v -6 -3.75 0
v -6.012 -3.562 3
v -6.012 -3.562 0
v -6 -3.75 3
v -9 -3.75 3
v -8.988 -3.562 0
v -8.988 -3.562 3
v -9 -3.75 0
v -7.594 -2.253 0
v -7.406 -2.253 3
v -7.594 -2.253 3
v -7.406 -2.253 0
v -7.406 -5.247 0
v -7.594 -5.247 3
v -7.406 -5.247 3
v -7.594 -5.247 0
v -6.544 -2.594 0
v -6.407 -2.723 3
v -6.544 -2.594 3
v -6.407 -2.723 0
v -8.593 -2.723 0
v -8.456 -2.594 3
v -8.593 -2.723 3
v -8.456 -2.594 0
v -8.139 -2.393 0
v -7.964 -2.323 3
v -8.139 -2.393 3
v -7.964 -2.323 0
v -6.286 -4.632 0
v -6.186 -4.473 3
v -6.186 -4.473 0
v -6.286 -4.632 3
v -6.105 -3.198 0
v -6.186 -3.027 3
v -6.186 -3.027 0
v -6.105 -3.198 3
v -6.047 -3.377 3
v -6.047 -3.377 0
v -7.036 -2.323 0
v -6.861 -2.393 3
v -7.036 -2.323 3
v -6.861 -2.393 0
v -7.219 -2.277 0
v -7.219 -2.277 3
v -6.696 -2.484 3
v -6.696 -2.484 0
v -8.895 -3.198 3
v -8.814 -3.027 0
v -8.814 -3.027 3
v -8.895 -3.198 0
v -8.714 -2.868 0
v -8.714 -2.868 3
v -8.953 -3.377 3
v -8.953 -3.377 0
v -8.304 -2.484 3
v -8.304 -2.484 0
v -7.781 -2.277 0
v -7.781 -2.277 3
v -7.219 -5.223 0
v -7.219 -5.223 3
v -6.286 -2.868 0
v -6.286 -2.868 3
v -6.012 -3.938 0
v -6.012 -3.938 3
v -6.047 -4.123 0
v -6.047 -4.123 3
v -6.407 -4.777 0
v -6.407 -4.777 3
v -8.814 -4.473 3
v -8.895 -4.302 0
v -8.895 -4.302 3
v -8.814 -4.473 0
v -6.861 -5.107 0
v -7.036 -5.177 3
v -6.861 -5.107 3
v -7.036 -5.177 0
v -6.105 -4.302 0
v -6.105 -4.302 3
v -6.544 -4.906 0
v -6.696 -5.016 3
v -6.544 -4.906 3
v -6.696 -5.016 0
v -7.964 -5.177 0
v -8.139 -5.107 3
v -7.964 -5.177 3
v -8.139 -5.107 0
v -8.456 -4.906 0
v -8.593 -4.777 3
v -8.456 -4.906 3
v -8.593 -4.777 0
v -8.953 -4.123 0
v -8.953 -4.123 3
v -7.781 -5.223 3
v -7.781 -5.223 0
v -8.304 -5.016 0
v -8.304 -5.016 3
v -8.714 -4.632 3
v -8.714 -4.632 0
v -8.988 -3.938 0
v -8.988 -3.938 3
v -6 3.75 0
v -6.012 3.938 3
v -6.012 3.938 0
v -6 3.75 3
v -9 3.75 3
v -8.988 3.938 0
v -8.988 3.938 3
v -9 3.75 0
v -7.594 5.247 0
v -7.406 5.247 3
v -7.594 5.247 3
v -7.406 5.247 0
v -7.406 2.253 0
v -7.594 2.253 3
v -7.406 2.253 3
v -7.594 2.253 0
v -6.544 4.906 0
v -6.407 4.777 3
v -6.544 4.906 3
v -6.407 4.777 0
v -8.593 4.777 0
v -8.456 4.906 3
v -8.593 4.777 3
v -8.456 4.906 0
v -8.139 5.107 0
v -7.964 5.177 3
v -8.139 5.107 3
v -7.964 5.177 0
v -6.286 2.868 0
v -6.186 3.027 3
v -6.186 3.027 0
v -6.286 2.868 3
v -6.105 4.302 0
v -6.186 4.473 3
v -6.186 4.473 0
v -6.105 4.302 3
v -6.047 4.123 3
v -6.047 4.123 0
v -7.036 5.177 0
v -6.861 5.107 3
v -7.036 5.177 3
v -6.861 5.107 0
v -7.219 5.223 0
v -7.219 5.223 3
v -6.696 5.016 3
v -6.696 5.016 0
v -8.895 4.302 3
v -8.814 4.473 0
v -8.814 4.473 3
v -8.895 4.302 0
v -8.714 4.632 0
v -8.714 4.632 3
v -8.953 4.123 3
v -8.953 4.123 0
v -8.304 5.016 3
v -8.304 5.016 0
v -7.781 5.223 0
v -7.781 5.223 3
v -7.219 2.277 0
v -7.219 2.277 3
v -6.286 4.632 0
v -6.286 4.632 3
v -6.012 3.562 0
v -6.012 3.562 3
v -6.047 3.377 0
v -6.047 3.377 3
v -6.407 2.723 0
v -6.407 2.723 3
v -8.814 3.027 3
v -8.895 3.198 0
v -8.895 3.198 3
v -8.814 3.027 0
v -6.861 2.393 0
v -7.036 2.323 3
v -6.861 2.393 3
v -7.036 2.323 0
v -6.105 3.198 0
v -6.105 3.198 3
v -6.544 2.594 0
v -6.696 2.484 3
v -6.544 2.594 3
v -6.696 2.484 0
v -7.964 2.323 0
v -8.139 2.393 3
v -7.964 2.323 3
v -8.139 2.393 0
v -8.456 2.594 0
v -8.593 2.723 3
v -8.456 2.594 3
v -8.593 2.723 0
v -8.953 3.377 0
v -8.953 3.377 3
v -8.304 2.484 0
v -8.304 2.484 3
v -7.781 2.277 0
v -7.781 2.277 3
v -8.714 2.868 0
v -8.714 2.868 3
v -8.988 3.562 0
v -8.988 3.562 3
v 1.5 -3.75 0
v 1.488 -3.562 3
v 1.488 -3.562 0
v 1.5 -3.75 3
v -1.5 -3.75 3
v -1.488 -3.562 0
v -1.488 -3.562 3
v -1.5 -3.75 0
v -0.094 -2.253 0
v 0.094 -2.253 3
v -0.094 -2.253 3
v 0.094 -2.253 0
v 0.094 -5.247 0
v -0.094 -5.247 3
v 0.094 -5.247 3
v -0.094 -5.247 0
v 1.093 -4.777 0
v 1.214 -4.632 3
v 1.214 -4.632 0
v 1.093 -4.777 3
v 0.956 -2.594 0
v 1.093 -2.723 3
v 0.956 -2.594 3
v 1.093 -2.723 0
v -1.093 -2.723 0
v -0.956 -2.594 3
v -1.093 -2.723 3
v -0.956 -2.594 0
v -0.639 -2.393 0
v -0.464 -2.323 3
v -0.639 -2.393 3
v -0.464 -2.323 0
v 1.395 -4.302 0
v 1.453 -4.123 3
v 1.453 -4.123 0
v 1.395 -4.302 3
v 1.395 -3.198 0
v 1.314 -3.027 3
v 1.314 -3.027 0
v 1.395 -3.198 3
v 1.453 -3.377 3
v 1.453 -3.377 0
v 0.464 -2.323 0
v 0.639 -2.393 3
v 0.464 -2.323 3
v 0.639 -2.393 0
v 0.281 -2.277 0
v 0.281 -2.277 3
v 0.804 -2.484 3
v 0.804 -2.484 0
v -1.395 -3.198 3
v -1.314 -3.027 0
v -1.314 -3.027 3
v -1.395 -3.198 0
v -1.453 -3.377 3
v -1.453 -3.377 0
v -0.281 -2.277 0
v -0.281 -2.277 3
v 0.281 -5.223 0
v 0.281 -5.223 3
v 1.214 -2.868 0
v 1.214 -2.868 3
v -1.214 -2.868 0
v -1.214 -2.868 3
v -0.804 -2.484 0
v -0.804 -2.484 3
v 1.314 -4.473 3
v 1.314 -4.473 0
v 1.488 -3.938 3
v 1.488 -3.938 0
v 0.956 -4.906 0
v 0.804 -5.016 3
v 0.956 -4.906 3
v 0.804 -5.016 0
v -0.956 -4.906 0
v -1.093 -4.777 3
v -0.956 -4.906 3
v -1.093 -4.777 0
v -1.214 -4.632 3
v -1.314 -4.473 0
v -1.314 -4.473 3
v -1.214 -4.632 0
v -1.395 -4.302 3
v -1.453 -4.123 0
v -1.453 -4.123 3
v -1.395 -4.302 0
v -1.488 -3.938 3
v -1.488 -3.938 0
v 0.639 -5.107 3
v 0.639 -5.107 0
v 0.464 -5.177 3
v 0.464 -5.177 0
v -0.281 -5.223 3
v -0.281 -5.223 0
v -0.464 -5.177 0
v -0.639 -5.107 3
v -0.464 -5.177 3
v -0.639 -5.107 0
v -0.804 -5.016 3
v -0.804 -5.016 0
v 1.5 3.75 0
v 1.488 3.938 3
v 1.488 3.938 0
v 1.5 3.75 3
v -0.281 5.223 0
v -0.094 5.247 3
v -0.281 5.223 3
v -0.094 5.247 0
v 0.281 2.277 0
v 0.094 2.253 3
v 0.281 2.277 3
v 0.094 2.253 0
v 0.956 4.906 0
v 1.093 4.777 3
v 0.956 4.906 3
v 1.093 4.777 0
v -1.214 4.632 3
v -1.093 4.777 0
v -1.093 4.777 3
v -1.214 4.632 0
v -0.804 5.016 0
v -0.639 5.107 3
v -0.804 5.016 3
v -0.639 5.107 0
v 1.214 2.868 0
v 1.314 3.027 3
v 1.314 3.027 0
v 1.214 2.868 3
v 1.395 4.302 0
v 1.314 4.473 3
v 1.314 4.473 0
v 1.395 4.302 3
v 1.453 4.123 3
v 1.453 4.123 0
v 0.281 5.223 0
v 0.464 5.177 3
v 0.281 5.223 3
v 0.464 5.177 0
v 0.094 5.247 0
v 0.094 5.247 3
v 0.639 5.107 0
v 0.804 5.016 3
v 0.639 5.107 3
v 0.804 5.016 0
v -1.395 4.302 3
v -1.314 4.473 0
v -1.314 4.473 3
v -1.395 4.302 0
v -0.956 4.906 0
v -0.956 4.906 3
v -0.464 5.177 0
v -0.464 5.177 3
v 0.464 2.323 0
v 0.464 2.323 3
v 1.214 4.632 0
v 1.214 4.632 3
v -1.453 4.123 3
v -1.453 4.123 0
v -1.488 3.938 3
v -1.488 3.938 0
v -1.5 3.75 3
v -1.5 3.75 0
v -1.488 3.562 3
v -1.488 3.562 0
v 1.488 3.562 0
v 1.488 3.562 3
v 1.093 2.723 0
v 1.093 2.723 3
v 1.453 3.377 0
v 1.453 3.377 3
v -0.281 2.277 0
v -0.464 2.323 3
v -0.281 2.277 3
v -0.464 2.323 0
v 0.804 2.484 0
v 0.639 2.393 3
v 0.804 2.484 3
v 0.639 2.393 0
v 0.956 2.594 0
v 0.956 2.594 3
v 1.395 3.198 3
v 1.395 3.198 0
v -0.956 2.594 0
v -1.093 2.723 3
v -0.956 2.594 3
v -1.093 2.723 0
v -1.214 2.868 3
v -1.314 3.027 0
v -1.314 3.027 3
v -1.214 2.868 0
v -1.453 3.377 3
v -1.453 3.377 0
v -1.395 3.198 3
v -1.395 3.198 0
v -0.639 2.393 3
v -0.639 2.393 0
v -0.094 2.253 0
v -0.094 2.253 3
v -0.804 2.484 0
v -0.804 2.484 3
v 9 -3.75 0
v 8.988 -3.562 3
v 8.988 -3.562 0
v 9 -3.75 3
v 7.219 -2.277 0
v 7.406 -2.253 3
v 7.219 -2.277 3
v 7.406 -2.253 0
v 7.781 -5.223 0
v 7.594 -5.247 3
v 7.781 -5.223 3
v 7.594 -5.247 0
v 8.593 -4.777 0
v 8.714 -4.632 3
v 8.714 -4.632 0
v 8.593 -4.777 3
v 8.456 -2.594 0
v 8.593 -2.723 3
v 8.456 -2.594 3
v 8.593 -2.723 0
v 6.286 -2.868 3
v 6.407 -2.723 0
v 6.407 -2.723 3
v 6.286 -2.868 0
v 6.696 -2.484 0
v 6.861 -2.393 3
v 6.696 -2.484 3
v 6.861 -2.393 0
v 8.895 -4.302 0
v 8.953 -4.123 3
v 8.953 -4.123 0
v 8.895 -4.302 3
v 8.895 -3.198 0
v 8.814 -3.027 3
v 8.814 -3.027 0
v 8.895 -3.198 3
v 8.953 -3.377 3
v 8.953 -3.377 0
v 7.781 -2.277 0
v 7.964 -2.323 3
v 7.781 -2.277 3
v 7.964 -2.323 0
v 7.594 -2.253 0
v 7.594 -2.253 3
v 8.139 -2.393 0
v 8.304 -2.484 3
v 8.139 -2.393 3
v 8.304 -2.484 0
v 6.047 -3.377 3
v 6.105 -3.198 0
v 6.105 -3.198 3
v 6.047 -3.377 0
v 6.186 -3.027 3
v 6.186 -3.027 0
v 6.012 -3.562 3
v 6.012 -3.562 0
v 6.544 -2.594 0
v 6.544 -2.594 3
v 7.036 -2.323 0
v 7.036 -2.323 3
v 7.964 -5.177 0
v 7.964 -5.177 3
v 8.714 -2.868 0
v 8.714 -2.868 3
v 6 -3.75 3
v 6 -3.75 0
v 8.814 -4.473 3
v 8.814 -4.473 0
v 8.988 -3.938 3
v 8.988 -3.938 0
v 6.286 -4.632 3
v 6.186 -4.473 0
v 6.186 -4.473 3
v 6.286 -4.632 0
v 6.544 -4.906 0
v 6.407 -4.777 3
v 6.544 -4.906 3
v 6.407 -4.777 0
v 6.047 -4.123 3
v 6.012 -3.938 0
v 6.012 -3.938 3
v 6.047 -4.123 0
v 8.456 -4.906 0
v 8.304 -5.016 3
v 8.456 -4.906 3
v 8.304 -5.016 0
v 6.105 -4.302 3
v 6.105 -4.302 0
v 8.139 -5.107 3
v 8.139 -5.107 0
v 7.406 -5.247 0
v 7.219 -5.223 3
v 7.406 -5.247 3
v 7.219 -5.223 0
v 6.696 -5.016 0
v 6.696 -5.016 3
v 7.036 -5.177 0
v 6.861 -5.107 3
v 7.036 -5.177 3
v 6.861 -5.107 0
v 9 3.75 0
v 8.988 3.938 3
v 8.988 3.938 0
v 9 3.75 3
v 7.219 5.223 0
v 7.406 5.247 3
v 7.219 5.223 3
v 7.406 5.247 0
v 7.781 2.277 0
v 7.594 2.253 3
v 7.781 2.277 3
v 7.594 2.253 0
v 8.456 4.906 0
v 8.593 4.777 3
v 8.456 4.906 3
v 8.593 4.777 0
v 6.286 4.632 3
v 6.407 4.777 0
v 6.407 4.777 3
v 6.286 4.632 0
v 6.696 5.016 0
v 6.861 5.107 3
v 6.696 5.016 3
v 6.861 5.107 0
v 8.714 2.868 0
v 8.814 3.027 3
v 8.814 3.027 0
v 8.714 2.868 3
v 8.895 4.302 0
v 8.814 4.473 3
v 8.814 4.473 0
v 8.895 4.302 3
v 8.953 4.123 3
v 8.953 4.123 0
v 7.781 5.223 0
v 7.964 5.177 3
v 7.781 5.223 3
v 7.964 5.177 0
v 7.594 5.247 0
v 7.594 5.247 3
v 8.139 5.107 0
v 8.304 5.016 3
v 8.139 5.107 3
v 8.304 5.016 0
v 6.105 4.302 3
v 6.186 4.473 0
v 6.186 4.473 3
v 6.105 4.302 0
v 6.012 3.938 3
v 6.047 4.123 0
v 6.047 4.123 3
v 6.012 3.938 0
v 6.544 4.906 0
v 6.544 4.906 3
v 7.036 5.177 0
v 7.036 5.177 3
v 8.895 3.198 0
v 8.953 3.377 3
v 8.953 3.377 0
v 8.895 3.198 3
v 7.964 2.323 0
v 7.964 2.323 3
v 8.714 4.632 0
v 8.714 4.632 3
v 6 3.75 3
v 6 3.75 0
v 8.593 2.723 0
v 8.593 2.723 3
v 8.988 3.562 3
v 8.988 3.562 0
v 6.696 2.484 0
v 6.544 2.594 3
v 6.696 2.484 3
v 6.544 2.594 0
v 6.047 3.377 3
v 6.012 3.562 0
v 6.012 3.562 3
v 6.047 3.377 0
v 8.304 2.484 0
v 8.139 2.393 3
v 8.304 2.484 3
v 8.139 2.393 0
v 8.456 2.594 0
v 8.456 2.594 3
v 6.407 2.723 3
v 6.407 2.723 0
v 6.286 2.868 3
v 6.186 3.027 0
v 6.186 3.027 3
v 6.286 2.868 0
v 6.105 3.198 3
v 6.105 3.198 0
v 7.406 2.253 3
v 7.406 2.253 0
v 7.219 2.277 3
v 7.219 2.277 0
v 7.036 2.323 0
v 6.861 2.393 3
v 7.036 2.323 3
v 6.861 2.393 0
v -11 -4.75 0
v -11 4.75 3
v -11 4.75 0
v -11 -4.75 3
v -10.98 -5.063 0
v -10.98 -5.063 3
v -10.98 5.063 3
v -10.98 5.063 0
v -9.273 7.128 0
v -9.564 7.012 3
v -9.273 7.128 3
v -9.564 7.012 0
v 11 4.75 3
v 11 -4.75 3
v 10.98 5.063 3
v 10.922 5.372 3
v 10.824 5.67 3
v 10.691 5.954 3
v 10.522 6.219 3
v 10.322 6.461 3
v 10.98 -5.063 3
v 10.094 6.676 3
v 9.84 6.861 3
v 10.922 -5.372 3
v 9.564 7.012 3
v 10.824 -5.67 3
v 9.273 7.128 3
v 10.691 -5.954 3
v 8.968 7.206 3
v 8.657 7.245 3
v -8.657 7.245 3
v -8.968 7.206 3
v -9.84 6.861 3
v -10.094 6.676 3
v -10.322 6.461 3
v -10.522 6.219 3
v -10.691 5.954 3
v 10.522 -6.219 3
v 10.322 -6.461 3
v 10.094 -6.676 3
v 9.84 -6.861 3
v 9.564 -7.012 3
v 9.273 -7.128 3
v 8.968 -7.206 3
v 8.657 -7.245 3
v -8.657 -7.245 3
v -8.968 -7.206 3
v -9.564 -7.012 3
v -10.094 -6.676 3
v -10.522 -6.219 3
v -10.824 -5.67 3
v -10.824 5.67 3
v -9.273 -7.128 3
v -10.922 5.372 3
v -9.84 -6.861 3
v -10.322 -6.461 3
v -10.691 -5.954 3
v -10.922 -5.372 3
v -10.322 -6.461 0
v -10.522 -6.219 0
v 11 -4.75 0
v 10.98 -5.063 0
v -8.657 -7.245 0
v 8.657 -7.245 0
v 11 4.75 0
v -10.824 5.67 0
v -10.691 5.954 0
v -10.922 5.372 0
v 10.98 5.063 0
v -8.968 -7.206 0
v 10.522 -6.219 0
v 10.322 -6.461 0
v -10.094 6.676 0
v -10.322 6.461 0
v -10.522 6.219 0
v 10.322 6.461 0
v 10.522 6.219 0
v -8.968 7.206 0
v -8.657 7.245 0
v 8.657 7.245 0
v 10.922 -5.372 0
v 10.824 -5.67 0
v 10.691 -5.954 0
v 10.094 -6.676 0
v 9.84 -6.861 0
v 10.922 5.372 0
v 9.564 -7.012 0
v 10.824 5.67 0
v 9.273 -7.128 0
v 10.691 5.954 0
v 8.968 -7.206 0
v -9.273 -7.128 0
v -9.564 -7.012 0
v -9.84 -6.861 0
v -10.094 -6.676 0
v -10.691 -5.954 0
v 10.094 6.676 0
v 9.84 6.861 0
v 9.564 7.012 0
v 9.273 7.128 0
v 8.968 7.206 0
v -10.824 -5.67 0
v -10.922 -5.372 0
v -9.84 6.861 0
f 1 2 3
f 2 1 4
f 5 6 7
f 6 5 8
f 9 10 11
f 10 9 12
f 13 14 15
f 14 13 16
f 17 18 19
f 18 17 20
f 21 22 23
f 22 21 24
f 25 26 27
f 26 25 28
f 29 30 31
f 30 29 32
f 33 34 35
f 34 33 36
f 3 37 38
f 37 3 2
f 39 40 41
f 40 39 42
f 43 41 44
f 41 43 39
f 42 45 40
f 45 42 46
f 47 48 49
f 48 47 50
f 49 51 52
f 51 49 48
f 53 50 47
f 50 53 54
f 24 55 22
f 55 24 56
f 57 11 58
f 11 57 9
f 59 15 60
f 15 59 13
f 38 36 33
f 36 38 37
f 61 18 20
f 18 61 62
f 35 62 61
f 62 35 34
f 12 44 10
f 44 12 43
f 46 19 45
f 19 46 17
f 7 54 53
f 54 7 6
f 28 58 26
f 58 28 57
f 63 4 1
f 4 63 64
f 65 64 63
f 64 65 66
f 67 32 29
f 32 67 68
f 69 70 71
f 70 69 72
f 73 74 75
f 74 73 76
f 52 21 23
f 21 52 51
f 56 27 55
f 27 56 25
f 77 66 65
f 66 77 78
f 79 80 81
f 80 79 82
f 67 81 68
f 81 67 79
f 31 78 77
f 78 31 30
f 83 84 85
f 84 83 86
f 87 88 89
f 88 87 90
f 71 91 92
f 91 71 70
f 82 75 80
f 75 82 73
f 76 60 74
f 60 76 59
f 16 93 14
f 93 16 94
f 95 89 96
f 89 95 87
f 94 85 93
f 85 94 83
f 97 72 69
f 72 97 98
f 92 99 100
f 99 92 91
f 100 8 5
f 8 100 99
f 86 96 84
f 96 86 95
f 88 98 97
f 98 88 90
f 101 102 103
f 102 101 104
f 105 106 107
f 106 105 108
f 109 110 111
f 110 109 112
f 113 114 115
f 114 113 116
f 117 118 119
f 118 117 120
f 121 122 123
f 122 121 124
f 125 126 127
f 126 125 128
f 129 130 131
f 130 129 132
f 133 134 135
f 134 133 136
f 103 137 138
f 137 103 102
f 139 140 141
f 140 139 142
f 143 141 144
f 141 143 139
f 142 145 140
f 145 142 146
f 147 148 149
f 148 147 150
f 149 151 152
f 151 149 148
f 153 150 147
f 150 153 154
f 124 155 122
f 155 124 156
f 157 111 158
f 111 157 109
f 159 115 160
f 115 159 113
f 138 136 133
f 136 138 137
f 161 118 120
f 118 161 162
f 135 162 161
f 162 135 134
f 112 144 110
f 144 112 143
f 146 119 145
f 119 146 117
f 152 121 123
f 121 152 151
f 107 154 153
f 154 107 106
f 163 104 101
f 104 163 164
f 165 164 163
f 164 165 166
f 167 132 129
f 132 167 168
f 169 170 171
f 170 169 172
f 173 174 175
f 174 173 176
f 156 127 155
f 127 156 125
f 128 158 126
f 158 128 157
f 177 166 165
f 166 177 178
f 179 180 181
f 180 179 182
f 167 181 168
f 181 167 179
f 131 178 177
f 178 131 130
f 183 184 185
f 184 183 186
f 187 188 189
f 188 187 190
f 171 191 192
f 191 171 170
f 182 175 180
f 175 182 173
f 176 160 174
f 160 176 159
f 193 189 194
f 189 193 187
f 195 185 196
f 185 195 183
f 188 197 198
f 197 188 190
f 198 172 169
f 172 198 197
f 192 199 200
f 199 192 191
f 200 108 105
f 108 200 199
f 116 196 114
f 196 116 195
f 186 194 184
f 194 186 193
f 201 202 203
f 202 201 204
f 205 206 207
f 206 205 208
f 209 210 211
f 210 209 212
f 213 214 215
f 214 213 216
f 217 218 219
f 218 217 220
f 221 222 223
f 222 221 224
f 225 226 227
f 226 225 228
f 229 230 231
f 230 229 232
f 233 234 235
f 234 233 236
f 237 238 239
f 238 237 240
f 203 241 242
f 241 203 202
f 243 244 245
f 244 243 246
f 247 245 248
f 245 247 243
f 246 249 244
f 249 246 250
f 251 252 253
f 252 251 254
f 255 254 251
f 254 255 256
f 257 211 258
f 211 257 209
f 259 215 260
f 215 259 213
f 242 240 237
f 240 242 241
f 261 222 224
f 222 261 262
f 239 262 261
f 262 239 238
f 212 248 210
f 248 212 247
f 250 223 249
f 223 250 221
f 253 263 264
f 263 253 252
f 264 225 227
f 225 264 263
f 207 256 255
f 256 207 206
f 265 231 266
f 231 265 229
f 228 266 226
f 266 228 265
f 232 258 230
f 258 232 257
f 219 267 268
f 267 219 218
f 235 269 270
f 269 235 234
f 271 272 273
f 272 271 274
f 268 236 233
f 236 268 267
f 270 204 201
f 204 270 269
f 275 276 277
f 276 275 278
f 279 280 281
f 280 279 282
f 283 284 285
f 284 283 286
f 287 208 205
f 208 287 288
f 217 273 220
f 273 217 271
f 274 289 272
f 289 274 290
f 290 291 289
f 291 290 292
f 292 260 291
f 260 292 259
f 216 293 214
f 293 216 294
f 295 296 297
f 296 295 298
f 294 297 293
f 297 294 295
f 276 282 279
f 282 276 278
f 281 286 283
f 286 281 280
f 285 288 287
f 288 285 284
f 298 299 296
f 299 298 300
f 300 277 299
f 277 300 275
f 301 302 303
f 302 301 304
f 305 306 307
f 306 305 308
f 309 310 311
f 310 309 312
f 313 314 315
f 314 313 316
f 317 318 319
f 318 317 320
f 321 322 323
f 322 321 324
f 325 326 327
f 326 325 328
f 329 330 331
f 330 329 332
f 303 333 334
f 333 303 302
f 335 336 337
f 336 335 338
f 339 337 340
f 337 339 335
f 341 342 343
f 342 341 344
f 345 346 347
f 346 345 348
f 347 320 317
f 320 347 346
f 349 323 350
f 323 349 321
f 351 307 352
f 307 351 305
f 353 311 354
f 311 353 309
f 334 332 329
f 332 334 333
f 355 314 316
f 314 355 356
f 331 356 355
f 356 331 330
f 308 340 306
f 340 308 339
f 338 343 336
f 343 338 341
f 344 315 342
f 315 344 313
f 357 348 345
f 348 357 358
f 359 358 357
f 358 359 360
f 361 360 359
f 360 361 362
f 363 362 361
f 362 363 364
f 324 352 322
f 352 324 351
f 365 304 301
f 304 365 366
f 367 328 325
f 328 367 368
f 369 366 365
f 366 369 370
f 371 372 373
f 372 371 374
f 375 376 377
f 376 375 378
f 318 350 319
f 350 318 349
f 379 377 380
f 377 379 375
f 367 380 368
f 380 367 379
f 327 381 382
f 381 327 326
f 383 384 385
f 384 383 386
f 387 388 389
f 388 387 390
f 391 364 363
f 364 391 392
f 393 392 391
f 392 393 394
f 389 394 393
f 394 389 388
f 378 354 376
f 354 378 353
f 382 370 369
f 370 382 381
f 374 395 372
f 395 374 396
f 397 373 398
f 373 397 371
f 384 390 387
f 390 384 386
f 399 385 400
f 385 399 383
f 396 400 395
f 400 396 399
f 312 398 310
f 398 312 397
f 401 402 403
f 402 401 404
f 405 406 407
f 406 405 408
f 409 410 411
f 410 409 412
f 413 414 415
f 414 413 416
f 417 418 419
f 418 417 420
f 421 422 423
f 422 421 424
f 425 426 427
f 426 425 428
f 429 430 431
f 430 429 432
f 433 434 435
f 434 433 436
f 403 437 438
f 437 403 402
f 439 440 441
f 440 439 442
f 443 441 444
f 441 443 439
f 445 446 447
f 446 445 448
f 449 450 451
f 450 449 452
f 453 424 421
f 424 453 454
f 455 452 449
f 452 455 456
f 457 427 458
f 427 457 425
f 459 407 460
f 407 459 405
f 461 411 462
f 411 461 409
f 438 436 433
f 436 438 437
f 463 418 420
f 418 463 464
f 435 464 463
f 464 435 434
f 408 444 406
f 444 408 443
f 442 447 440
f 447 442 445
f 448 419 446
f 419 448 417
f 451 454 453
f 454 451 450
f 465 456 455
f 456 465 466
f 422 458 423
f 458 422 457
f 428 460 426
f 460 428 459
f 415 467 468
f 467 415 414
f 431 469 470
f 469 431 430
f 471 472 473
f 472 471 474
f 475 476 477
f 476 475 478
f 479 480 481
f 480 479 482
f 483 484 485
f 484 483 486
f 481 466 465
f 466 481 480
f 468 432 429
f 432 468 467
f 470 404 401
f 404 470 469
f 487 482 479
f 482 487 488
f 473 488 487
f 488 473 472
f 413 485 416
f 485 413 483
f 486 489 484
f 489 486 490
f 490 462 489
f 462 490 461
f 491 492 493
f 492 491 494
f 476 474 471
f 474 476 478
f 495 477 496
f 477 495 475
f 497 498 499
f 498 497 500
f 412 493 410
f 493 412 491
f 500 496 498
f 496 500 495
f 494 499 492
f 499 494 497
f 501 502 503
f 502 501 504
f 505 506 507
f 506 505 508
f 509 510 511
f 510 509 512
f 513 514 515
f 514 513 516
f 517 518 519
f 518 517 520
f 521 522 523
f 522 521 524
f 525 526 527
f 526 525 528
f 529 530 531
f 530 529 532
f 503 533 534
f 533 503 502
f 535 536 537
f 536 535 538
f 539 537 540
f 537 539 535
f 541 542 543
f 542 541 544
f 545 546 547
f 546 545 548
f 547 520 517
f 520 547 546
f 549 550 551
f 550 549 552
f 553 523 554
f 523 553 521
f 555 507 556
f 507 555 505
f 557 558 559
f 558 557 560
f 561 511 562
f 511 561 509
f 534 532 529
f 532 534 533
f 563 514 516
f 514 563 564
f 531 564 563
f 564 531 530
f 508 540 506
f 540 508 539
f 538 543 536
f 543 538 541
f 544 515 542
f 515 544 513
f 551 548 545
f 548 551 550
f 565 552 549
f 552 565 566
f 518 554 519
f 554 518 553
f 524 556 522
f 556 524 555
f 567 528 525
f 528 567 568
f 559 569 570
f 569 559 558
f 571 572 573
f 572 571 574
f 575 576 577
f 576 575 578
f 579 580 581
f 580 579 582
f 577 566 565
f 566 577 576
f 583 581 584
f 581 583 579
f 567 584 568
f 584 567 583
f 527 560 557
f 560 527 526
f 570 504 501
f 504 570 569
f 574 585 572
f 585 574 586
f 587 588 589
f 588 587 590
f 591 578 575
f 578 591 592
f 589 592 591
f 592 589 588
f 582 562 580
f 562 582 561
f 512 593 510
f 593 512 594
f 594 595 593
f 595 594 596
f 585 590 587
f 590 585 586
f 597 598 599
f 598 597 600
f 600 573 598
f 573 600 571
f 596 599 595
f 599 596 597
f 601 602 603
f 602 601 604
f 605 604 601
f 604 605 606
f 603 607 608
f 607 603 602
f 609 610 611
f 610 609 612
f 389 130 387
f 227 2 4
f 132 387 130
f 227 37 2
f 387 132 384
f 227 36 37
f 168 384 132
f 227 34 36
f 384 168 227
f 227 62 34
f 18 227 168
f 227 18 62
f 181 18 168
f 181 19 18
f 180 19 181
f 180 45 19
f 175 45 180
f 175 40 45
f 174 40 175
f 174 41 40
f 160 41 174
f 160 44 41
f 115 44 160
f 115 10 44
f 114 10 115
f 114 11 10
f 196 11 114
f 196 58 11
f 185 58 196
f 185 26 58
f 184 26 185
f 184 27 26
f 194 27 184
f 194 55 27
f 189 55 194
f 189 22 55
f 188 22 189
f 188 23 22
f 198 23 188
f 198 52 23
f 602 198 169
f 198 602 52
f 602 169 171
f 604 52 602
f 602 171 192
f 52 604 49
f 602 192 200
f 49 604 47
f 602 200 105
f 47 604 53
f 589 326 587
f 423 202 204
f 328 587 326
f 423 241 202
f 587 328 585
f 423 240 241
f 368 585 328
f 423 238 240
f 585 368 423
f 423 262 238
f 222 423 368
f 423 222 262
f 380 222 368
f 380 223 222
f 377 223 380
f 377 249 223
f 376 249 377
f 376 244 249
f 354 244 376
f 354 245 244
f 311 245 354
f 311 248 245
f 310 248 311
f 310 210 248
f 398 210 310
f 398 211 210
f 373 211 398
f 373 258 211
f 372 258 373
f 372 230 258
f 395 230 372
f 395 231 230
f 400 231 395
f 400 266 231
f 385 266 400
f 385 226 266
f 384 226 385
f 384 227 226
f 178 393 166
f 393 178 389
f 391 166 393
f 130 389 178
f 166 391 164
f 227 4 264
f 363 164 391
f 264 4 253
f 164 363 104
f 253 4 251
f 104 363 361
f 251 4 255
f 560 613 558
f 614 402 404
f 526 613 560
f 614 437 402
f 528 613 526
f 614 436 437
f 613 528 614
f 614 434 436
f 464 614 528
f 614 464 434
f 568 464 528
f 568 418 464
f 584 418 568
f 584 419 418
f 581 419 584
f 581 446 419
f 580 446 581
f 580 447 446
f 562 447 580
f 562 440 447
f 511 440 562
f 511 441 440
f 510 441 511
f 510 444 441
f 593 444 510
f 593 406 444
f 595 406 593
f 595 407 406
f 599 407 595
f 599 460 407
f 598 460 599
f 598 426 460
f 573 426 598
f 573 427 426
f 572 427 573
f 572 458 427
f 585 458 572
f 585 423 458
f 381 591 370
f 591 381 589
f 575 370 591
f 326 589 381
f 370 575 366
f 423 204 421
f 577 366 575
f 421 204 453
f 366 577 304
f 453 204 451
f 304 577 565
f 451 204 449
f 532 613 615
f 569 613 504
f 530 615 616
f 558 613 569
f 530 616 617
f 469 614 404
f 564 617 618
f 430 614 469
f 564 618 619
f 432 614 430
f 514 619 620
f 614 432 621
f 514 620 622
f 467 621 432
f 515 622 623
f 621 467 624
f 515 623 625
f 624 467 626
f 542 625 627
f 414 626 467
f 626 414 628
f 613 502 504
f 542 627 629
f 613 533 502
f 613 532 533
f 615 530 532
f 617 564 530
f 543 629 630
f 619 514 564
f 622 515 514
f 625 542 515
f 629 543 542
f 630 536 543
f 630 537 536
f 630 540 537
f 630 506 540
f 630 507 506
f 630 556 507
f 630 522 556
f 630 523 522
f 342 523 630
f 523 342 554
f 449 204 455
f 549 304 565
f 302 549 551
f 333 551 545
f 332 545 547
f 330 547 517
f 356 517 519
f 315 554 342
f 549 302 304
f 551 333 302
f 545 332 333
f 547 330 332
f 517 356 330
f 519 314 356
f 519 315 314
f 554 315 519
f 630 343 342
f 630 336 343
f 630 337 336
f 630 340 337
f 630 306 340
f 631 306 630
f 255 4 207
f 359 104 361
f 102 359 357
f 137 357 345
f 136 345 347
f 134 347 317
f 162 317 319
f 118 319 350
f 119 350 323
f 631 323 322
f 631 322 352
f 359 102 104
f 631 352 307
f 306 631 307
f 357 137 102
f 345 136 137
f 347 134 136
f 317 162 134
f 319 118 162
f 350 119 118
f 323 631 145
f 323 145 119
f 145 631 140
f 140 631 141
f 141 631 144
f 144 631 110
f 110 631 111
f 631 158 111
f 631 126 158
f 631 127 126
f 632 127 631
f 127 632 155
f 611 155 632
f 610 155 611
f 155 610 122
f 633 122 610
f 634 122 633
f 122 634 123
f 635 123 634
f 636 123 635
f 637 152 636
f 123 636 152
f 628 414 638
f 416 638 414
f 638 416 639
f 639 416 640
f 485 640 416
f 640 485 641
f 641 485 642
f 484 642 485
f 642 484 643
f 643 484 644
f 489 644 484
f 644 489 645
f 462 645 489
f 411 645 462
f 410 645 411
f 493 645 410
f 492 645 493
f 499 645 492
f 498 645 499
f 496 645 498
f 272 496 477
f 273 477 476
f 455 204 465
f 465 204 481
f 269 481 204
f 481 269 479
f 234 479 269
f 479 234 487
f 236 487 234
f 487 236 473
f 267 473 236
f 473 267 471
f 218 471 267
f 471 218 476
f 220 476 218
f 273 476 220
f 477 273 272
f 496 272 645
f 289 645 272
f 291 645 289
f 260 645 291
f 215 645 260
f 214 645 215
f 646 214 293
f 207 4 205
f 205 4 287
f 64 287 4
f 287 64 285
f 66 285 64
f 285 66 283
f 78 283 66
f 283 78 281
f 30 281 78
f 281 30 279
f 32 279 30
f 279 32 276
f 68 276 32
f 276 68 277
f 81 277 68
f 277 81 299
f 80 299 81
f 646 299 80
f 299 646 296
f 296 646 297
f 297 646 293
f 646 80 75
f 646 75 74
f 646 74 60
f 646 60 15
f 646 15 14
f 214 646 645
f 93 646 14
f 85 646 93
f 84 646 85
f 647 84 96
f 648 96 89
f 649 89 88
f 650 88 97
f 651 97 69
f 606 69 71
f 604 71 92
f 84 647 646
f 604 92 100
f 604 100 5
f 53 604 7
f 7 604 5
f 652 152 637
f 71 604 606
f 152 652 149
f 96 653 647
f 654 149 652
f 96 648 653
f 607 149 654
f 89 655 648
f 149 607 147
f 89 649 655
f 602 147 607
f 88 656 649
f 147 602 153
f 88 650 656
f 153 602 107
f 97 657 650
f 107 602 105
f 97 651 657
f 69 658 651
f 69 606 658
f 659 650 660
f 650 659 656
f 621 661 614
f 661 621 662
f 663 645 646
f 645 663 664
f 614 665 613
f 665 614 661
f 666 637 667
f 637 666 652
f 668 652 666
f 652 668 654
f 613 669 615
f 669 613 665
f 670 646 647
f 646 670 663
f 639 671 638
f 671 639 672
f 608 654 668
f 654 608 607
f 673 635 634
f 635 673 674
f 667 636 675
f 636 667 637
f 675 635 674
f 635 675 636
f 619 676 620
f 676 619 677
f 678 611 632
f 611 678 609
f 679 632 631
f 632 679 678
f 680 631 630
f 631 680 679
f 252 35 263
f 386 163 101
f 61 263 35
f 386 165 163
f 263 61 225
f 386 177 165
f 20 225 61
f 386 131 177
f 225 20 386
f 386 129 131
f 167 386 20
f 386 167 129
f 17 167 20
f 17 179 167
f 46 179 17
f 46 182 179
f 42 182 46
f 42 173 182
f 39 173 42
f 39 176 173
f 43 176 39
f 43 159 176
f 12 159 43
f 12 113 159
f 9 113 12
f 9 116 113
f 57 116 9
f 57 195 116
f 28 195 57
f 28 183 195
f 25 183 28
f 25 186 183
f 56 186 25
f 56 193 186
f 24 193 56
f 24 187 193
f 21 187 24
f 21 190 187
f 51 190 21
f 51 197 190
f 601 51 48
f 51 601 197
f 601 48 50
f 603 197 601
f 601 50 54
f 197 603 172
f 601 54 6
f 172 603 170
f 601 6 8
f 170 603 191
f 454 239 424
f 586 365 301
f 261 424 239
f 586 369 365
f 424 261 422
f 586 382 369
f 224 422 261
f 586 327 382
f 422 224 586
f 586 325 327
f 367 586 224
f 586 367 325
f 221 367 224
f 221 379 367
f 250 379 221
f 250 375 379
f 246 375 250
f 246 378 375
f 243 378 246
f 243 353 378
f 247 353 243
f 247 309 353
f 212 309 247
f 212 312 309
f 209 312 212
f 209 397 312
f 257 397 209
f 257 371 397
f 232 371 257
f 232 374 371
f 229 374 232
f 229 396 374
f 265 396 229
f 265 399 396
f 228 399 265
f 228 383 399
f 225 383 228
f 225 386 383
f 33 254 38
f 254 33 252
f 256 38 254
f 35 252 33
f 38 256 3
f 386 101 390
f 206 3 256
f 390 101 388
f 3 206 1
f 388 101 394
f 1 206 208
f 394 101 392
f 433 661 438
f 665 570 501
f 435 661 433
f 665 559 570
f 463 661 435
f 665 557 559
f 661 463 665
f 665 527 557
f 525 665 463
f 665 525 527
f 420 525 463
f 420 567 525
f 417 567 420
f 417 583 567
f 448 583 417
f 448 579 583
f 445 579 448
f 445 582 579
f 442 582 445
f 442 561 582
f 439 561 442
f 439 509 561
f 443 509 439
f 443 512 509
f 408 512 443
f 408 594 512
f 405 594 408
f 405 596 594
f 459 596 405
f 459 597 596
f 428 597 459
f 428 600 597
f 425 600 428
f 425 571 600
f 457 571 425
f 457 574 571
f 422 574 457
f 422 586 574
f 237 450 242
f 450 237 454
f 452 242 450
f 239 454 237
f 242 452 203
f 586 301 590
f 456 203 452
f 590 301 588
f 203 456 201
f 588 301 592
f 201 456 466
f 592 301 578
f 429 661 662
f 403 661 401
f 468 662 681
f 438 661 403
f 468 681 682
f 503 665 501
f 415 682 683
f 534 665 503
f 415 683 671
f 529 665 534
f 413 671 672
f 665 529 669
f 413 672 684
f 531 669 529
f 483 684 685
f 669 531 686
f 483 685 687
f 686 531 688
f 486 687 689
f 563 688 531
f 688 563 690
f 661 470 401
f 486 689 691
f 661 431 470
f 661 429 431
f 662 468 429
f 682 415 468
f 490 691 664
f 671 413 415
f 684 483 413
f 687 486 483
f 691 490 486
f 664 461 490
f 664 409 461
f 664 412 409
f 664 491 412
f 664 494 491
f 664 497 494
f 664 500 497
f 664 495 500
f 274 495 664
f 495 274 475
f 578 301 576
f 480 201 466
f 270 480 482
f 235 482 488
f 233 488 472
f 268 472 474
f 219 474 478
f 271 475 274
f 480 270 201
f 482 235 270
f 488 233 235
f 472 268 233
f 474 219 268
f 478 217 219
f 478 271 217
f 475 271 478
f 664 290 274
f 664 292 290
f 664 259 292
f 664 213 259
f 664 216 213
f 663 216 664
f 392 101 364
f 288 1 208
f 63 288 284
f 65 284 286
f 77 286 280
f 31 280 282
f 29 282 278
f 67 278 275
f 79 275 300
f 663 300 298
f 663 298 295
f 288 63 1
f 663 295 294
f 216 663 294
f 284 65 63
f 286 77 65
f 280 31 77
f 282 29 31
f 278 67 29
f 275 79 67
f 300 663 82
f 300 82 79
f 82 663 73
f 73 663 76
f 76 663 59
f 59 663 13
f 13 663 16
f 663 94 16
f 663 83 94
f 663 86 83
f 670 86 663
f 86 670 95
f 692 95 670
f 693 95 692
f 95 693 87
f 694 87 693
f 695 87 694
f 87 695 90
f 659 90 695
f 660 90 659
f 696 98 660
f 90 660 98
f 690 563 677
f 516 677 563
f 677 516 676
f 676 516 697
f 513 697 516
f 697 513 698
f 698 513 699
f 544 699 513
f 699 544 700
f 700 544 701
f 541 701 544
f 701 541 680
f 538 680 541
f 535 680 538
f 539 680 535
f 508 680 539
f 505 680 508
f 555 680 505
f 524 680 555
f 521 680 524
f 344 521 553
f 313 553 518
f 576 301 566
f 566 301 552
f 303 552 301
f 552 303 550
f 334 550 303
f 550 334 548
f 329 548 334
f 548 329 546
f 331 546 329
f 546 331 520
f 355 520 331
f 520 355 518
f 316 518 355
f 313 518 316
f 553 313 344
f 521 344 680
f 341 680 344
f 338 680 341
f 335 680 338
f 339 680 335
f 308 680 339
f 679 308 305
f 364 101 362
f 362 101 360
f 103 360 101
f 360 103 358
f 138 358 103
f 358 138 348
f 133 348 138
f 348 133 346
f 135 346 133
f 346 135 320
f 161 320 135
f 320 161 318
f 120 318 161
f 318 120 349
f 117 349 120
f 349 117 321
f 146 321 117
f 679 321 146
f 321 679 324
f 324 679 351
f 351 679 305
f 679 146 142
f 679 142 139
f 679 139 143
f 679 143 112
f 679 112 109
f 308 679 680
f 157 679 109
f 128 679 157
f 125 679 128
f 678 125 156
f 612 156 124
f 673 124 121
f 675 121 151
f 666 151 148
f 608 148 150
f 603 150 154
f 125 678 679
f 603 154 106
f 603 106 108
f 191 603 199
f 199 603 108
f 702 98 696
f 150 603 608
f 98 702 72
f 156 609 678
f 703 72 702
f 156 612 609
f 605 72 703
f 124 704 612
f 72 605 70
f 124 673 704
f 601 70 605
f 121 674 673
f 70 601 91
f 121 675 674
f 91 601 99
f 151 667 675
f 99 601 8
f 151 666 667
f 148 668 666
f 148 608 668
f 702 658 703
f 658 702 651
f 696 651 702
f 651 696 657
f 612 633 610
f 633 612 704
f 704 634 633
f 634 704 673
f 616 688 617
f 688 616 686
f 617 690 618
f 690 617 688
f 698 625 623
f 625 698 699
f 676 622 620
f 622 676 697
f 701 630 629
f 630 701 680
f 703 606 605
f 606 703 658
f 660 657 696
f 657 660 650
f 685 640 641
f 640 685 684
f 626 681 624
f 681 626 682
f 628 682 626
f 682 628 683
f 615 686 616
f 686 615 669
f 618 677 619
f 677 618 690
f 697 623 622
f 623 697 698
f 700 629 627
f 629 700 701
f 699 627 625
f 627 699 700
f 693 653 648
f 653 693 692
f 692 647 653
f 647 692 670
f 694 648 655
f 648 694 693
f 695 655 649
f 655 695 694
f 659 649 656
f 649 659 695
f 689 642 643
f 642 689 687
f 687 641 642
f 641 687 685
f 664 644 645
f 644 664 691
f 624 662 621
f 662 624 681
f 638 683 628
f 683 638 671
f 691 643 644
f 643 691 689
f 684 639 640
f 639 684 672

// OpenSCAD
$fn = 50;


difference() {
	union() {
		translate(v = [0, 0, 0]) {
			rotate(a = [0, 0, 0]) {
				hull() {
					translate(v = [-8.5000000000, 4.7500000000, 0]) {
						rotate(a = [0, 0, 0]) {
							translate(v = [0, 0, 0]) {
								rotate(a = [0, 0, 0]) {
									cylinder(h = 3, r = 2.5000000000);
								}
							}
						}
					}
					translate(v = [8.5000000000, 4.7500000000, 0]) {
						rotate(a = [0, 0, 0]) {
							translate(v = [0, 0, 0]) {
								rotate(a = [0, 0, 0]) {
									cylinder(h = 3, r = 2.5000000000);
								}
							}
						}
					}
					translate(v = [-8.5000000000, -4.7500000000, 0]) {
						rotate(a = [0, 0, 0]) {
							translate(v = [0, 0, 0]) {
								rotate(a = [0, 0, 0]) {
									cylinder(h = 3, r = 2.5000000000);
								}
							}
						}
					}
					translate(v = [8.5000000000, -4.7500000000, 0]) {
						rotate(a = [0, 0, 0]) {
							translate(v = [0, 0, 0]) {
								rotate(a = [0, 0, 0]) {
									cylinder(h = 3, r = 2.5000000000);
								}
							}
						}
					}
				}
			}
		}
	}
	union() {
		translate(v = [-7.5000000000, -3.7500000000, 0]) {
			rotate(a = [0, 0, 0]) {
				translate(v = [0, 0, -50]) {
					rotate(a = [0, 0, 0]) {
						cylinder(h = 100, r = 1.5000000000);
					}
				}
			}
		}
		translate(v = [-7.5000000000, 3.7500000000, 0]) {
			rotate(a = [0, 0, 0]) {
				translate(v = [0, 0, -50]) {
					rotate(a = [0, 0, 0]) {
						cylinder(h = 100, r = 1.5000000000);
					}
				}
			}
		}
		translate(v = [0.0000000000, -3.7500000000, 0]) {
			rotate(a = [0, 0, 0]) {
				translate(v = [0, 0, -50]) {
					rotate(a = [0, 0, 0]) {
						cylinder(h = 100, r = 1.5000000000);
					}
				}
			}
		}
		translate(v = [0.0000000000, 3.7500000000, 0]) {
			rotate(a = [0, 0, 0]) {
				translate(v = [0, 0, -50]) {
					rotate(a = [0, 0, 0]) {
						cylinder(h = 100, r = 1.5000000000);
					}
				}
			}
		}
		translate(v = [7.5000000000, -3.7500000000, 0]) {
			rotate(a = [0, 0, 0]) {
				translate(v = [0, 0, -50]) {
					rotate(a = [0, 0, 0]) {
						cylinder(h = 100, r = 1.5000000000);
					}
				}
			}
		}
		translate(v = [7.5000000000, 3.7500000000, 0]) {
			rotate(a = [0, 0, 0]) {
				translate(v = [0, 0, -50]) {
					rotate(a = [0, 0, 0]) {
						cylinder(h = 100, r = 1.5000000000);
					}
				}
			}
		}
	}
}
